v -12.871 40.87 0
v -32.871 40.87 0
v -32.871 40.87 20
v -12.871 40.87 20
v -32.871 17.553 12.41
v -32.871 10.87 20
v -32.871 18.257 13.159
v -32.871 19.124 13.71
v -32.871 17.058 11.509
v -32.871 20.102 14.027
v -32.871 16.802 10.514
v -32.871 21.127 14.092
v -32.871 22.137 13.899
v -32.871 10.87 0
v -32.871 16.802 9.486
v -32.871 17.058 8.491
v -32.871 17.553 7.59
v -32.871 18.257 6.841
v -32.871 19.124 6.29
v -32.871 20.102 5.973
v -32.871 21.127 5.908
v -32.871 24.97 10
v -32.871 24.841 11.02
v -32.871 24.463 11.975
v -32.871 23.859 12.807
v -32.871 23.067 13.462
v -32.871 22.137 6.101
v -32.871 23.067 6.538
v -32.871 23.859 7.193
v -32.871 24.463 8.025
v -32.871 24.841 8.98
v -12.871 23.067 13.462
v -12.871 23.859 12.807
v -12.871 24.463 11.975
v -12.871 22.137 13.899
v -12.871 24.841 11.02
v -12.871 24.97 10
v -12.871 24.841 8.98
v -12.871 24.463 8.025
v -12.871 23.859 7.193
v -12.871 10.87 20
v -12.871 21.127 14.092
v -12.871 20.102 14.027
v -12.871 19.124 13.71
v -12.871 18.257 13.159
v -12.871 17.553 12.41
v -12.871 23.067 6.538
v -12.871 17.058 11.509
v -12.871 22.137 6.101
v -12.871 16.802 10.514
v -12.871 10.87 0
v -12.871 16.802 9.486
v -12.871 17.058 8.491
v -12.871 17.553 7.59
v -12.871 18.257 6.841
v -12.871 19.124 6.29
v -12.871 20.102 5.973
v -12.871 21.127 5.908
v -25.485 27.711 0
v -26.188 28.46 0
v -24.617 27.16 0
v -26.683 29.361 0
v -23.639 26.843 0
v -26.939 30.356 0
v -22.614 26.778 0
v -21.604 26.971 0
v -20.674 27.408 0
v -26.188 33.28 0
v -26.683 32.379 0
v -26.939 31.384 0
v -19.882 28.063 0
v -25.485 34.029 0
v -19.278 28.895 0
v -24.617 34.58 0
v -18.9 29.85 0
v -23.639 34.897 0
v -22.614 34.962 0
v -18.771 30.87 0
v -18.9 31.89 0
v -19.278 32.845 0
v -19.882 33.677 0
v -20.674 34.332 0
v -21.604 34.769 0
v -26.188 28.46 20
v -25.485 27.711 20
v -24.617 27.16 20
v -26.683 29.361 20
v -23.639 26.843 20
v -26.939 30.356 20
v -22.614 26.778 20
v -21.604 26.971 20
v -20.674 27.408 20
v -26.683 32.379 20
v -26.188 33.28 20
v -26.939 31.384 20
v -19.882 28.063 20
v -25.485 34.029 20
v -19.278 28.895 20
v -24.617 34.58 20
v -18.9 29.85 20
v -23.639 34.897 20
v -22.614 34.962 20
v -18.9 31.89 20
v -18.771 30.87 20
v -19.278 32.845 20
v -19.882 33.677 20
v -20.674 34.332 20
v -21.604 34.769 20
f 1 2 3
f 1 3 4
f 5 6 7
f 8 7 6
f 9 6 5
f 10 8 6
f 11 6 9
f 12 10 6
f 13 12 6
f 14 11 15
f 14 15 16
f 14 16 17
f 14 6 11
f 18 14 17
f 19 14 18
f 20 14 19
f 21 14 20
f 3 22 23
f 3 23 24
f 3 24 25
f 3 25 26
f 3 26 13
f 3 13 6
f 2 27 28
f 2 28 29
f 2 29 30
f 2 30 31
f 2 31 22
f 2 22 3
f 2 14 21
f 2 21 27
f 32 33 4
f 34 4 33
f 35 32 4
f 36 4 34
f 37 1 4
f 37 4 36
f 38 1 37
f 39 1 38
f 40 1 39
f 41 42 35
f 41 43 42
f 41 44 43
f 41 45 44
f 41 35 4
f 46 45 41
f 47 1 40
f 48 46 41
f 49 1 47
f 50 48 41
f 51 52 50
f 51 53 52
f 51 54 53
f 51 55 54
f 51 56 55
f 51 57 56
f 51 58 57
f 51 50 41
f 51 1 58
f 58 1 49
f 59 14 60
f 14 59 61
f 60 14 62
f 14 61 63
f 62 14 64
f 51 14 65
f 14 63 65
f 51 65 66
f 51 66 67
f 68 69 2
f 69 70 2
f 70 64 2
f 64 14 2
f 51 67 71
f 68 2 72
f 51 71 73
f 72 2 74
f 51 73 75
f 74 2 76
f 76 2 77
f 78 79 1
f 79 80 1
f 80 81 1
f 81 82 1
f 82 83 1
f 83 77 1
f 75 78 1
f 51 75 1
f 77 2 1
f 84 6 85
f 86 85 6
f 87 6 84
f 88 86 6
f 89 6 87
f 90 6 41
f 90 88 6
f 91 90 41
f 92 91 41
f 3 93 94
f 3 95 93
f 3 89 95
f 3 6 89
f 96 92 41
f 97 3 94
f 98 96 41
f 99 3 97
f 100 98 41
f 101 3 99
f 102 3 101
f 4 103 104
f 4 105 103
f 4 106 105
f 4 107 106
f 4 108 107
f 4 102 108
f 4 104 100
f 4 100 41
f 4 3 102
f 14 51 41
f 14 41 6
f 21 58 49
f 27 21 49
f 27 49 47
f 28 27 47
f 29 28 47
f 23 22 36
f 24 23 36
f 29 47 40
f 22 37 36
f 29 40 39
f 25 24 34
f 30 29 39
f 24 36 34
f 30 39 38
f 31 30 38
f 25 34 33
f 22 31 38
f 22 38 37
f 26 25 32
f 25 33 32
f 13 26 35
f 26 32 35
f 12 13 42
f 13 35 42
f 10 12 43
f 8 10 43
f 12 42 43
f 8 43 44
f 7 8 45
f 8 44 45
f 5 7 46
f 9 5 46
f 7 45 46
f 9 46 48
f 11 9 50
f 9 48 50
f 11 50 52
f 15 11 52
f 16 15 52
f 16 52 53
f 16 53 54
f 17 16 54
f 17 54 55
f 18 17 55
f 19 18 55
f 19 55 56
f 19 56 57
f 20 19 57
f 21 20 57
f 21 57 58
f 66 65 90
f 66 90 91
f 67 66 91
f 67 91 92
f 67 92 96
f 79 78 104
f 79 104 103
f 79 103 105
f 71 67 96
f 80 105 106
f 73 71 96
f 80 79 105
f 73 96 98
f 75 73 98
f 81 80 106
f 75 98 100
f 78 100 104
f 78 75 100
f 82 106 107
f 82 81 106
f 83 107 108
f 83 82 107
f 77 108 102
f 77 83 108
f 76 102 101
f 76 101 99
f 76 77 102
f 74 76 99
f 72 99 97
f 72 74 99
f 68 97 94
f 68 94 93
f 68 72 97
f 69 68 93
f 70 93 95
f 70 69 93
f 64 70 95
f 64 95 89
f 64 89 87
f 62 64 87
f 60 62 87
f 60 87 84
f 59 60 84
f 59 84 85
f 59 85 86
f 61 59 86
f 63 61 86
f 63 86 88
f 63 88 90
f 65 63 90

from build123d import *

# Parameters (mm, degrees)
SKETCH_W     = 20
SKETCH_H     = 30
SKETCH_R     = 4.1
PAD_DEPTH    = 20
SKETCH001_R  = 4.1
POCKET_DEPTH = 20


with BuildPart() as part:
    # Sketch → Pad (new body)
    with BuildSketch(Plane.XY):
        with Locations((-22.871155, 25.870022)):
            Rectangle(SKETCH_W, SKETCH_H)
        with Locations((-22.871155, 30.870022)):
            Circle(SKETCH_R, mode=Mode.SUBTRACT)
    extrude(amount=PAD_DEPTH)

    # Sketch001 → Pocket (cut)
    with BuildSketch(Plane.YZ.offset(-12.871155)):
        with Locations((20.870022, 10)):
            Circle(SKETCH001_R)
    extrude(amount=-POCKET_DEPTH, mode=Mode.SUBTRACT)


solid = part.part
